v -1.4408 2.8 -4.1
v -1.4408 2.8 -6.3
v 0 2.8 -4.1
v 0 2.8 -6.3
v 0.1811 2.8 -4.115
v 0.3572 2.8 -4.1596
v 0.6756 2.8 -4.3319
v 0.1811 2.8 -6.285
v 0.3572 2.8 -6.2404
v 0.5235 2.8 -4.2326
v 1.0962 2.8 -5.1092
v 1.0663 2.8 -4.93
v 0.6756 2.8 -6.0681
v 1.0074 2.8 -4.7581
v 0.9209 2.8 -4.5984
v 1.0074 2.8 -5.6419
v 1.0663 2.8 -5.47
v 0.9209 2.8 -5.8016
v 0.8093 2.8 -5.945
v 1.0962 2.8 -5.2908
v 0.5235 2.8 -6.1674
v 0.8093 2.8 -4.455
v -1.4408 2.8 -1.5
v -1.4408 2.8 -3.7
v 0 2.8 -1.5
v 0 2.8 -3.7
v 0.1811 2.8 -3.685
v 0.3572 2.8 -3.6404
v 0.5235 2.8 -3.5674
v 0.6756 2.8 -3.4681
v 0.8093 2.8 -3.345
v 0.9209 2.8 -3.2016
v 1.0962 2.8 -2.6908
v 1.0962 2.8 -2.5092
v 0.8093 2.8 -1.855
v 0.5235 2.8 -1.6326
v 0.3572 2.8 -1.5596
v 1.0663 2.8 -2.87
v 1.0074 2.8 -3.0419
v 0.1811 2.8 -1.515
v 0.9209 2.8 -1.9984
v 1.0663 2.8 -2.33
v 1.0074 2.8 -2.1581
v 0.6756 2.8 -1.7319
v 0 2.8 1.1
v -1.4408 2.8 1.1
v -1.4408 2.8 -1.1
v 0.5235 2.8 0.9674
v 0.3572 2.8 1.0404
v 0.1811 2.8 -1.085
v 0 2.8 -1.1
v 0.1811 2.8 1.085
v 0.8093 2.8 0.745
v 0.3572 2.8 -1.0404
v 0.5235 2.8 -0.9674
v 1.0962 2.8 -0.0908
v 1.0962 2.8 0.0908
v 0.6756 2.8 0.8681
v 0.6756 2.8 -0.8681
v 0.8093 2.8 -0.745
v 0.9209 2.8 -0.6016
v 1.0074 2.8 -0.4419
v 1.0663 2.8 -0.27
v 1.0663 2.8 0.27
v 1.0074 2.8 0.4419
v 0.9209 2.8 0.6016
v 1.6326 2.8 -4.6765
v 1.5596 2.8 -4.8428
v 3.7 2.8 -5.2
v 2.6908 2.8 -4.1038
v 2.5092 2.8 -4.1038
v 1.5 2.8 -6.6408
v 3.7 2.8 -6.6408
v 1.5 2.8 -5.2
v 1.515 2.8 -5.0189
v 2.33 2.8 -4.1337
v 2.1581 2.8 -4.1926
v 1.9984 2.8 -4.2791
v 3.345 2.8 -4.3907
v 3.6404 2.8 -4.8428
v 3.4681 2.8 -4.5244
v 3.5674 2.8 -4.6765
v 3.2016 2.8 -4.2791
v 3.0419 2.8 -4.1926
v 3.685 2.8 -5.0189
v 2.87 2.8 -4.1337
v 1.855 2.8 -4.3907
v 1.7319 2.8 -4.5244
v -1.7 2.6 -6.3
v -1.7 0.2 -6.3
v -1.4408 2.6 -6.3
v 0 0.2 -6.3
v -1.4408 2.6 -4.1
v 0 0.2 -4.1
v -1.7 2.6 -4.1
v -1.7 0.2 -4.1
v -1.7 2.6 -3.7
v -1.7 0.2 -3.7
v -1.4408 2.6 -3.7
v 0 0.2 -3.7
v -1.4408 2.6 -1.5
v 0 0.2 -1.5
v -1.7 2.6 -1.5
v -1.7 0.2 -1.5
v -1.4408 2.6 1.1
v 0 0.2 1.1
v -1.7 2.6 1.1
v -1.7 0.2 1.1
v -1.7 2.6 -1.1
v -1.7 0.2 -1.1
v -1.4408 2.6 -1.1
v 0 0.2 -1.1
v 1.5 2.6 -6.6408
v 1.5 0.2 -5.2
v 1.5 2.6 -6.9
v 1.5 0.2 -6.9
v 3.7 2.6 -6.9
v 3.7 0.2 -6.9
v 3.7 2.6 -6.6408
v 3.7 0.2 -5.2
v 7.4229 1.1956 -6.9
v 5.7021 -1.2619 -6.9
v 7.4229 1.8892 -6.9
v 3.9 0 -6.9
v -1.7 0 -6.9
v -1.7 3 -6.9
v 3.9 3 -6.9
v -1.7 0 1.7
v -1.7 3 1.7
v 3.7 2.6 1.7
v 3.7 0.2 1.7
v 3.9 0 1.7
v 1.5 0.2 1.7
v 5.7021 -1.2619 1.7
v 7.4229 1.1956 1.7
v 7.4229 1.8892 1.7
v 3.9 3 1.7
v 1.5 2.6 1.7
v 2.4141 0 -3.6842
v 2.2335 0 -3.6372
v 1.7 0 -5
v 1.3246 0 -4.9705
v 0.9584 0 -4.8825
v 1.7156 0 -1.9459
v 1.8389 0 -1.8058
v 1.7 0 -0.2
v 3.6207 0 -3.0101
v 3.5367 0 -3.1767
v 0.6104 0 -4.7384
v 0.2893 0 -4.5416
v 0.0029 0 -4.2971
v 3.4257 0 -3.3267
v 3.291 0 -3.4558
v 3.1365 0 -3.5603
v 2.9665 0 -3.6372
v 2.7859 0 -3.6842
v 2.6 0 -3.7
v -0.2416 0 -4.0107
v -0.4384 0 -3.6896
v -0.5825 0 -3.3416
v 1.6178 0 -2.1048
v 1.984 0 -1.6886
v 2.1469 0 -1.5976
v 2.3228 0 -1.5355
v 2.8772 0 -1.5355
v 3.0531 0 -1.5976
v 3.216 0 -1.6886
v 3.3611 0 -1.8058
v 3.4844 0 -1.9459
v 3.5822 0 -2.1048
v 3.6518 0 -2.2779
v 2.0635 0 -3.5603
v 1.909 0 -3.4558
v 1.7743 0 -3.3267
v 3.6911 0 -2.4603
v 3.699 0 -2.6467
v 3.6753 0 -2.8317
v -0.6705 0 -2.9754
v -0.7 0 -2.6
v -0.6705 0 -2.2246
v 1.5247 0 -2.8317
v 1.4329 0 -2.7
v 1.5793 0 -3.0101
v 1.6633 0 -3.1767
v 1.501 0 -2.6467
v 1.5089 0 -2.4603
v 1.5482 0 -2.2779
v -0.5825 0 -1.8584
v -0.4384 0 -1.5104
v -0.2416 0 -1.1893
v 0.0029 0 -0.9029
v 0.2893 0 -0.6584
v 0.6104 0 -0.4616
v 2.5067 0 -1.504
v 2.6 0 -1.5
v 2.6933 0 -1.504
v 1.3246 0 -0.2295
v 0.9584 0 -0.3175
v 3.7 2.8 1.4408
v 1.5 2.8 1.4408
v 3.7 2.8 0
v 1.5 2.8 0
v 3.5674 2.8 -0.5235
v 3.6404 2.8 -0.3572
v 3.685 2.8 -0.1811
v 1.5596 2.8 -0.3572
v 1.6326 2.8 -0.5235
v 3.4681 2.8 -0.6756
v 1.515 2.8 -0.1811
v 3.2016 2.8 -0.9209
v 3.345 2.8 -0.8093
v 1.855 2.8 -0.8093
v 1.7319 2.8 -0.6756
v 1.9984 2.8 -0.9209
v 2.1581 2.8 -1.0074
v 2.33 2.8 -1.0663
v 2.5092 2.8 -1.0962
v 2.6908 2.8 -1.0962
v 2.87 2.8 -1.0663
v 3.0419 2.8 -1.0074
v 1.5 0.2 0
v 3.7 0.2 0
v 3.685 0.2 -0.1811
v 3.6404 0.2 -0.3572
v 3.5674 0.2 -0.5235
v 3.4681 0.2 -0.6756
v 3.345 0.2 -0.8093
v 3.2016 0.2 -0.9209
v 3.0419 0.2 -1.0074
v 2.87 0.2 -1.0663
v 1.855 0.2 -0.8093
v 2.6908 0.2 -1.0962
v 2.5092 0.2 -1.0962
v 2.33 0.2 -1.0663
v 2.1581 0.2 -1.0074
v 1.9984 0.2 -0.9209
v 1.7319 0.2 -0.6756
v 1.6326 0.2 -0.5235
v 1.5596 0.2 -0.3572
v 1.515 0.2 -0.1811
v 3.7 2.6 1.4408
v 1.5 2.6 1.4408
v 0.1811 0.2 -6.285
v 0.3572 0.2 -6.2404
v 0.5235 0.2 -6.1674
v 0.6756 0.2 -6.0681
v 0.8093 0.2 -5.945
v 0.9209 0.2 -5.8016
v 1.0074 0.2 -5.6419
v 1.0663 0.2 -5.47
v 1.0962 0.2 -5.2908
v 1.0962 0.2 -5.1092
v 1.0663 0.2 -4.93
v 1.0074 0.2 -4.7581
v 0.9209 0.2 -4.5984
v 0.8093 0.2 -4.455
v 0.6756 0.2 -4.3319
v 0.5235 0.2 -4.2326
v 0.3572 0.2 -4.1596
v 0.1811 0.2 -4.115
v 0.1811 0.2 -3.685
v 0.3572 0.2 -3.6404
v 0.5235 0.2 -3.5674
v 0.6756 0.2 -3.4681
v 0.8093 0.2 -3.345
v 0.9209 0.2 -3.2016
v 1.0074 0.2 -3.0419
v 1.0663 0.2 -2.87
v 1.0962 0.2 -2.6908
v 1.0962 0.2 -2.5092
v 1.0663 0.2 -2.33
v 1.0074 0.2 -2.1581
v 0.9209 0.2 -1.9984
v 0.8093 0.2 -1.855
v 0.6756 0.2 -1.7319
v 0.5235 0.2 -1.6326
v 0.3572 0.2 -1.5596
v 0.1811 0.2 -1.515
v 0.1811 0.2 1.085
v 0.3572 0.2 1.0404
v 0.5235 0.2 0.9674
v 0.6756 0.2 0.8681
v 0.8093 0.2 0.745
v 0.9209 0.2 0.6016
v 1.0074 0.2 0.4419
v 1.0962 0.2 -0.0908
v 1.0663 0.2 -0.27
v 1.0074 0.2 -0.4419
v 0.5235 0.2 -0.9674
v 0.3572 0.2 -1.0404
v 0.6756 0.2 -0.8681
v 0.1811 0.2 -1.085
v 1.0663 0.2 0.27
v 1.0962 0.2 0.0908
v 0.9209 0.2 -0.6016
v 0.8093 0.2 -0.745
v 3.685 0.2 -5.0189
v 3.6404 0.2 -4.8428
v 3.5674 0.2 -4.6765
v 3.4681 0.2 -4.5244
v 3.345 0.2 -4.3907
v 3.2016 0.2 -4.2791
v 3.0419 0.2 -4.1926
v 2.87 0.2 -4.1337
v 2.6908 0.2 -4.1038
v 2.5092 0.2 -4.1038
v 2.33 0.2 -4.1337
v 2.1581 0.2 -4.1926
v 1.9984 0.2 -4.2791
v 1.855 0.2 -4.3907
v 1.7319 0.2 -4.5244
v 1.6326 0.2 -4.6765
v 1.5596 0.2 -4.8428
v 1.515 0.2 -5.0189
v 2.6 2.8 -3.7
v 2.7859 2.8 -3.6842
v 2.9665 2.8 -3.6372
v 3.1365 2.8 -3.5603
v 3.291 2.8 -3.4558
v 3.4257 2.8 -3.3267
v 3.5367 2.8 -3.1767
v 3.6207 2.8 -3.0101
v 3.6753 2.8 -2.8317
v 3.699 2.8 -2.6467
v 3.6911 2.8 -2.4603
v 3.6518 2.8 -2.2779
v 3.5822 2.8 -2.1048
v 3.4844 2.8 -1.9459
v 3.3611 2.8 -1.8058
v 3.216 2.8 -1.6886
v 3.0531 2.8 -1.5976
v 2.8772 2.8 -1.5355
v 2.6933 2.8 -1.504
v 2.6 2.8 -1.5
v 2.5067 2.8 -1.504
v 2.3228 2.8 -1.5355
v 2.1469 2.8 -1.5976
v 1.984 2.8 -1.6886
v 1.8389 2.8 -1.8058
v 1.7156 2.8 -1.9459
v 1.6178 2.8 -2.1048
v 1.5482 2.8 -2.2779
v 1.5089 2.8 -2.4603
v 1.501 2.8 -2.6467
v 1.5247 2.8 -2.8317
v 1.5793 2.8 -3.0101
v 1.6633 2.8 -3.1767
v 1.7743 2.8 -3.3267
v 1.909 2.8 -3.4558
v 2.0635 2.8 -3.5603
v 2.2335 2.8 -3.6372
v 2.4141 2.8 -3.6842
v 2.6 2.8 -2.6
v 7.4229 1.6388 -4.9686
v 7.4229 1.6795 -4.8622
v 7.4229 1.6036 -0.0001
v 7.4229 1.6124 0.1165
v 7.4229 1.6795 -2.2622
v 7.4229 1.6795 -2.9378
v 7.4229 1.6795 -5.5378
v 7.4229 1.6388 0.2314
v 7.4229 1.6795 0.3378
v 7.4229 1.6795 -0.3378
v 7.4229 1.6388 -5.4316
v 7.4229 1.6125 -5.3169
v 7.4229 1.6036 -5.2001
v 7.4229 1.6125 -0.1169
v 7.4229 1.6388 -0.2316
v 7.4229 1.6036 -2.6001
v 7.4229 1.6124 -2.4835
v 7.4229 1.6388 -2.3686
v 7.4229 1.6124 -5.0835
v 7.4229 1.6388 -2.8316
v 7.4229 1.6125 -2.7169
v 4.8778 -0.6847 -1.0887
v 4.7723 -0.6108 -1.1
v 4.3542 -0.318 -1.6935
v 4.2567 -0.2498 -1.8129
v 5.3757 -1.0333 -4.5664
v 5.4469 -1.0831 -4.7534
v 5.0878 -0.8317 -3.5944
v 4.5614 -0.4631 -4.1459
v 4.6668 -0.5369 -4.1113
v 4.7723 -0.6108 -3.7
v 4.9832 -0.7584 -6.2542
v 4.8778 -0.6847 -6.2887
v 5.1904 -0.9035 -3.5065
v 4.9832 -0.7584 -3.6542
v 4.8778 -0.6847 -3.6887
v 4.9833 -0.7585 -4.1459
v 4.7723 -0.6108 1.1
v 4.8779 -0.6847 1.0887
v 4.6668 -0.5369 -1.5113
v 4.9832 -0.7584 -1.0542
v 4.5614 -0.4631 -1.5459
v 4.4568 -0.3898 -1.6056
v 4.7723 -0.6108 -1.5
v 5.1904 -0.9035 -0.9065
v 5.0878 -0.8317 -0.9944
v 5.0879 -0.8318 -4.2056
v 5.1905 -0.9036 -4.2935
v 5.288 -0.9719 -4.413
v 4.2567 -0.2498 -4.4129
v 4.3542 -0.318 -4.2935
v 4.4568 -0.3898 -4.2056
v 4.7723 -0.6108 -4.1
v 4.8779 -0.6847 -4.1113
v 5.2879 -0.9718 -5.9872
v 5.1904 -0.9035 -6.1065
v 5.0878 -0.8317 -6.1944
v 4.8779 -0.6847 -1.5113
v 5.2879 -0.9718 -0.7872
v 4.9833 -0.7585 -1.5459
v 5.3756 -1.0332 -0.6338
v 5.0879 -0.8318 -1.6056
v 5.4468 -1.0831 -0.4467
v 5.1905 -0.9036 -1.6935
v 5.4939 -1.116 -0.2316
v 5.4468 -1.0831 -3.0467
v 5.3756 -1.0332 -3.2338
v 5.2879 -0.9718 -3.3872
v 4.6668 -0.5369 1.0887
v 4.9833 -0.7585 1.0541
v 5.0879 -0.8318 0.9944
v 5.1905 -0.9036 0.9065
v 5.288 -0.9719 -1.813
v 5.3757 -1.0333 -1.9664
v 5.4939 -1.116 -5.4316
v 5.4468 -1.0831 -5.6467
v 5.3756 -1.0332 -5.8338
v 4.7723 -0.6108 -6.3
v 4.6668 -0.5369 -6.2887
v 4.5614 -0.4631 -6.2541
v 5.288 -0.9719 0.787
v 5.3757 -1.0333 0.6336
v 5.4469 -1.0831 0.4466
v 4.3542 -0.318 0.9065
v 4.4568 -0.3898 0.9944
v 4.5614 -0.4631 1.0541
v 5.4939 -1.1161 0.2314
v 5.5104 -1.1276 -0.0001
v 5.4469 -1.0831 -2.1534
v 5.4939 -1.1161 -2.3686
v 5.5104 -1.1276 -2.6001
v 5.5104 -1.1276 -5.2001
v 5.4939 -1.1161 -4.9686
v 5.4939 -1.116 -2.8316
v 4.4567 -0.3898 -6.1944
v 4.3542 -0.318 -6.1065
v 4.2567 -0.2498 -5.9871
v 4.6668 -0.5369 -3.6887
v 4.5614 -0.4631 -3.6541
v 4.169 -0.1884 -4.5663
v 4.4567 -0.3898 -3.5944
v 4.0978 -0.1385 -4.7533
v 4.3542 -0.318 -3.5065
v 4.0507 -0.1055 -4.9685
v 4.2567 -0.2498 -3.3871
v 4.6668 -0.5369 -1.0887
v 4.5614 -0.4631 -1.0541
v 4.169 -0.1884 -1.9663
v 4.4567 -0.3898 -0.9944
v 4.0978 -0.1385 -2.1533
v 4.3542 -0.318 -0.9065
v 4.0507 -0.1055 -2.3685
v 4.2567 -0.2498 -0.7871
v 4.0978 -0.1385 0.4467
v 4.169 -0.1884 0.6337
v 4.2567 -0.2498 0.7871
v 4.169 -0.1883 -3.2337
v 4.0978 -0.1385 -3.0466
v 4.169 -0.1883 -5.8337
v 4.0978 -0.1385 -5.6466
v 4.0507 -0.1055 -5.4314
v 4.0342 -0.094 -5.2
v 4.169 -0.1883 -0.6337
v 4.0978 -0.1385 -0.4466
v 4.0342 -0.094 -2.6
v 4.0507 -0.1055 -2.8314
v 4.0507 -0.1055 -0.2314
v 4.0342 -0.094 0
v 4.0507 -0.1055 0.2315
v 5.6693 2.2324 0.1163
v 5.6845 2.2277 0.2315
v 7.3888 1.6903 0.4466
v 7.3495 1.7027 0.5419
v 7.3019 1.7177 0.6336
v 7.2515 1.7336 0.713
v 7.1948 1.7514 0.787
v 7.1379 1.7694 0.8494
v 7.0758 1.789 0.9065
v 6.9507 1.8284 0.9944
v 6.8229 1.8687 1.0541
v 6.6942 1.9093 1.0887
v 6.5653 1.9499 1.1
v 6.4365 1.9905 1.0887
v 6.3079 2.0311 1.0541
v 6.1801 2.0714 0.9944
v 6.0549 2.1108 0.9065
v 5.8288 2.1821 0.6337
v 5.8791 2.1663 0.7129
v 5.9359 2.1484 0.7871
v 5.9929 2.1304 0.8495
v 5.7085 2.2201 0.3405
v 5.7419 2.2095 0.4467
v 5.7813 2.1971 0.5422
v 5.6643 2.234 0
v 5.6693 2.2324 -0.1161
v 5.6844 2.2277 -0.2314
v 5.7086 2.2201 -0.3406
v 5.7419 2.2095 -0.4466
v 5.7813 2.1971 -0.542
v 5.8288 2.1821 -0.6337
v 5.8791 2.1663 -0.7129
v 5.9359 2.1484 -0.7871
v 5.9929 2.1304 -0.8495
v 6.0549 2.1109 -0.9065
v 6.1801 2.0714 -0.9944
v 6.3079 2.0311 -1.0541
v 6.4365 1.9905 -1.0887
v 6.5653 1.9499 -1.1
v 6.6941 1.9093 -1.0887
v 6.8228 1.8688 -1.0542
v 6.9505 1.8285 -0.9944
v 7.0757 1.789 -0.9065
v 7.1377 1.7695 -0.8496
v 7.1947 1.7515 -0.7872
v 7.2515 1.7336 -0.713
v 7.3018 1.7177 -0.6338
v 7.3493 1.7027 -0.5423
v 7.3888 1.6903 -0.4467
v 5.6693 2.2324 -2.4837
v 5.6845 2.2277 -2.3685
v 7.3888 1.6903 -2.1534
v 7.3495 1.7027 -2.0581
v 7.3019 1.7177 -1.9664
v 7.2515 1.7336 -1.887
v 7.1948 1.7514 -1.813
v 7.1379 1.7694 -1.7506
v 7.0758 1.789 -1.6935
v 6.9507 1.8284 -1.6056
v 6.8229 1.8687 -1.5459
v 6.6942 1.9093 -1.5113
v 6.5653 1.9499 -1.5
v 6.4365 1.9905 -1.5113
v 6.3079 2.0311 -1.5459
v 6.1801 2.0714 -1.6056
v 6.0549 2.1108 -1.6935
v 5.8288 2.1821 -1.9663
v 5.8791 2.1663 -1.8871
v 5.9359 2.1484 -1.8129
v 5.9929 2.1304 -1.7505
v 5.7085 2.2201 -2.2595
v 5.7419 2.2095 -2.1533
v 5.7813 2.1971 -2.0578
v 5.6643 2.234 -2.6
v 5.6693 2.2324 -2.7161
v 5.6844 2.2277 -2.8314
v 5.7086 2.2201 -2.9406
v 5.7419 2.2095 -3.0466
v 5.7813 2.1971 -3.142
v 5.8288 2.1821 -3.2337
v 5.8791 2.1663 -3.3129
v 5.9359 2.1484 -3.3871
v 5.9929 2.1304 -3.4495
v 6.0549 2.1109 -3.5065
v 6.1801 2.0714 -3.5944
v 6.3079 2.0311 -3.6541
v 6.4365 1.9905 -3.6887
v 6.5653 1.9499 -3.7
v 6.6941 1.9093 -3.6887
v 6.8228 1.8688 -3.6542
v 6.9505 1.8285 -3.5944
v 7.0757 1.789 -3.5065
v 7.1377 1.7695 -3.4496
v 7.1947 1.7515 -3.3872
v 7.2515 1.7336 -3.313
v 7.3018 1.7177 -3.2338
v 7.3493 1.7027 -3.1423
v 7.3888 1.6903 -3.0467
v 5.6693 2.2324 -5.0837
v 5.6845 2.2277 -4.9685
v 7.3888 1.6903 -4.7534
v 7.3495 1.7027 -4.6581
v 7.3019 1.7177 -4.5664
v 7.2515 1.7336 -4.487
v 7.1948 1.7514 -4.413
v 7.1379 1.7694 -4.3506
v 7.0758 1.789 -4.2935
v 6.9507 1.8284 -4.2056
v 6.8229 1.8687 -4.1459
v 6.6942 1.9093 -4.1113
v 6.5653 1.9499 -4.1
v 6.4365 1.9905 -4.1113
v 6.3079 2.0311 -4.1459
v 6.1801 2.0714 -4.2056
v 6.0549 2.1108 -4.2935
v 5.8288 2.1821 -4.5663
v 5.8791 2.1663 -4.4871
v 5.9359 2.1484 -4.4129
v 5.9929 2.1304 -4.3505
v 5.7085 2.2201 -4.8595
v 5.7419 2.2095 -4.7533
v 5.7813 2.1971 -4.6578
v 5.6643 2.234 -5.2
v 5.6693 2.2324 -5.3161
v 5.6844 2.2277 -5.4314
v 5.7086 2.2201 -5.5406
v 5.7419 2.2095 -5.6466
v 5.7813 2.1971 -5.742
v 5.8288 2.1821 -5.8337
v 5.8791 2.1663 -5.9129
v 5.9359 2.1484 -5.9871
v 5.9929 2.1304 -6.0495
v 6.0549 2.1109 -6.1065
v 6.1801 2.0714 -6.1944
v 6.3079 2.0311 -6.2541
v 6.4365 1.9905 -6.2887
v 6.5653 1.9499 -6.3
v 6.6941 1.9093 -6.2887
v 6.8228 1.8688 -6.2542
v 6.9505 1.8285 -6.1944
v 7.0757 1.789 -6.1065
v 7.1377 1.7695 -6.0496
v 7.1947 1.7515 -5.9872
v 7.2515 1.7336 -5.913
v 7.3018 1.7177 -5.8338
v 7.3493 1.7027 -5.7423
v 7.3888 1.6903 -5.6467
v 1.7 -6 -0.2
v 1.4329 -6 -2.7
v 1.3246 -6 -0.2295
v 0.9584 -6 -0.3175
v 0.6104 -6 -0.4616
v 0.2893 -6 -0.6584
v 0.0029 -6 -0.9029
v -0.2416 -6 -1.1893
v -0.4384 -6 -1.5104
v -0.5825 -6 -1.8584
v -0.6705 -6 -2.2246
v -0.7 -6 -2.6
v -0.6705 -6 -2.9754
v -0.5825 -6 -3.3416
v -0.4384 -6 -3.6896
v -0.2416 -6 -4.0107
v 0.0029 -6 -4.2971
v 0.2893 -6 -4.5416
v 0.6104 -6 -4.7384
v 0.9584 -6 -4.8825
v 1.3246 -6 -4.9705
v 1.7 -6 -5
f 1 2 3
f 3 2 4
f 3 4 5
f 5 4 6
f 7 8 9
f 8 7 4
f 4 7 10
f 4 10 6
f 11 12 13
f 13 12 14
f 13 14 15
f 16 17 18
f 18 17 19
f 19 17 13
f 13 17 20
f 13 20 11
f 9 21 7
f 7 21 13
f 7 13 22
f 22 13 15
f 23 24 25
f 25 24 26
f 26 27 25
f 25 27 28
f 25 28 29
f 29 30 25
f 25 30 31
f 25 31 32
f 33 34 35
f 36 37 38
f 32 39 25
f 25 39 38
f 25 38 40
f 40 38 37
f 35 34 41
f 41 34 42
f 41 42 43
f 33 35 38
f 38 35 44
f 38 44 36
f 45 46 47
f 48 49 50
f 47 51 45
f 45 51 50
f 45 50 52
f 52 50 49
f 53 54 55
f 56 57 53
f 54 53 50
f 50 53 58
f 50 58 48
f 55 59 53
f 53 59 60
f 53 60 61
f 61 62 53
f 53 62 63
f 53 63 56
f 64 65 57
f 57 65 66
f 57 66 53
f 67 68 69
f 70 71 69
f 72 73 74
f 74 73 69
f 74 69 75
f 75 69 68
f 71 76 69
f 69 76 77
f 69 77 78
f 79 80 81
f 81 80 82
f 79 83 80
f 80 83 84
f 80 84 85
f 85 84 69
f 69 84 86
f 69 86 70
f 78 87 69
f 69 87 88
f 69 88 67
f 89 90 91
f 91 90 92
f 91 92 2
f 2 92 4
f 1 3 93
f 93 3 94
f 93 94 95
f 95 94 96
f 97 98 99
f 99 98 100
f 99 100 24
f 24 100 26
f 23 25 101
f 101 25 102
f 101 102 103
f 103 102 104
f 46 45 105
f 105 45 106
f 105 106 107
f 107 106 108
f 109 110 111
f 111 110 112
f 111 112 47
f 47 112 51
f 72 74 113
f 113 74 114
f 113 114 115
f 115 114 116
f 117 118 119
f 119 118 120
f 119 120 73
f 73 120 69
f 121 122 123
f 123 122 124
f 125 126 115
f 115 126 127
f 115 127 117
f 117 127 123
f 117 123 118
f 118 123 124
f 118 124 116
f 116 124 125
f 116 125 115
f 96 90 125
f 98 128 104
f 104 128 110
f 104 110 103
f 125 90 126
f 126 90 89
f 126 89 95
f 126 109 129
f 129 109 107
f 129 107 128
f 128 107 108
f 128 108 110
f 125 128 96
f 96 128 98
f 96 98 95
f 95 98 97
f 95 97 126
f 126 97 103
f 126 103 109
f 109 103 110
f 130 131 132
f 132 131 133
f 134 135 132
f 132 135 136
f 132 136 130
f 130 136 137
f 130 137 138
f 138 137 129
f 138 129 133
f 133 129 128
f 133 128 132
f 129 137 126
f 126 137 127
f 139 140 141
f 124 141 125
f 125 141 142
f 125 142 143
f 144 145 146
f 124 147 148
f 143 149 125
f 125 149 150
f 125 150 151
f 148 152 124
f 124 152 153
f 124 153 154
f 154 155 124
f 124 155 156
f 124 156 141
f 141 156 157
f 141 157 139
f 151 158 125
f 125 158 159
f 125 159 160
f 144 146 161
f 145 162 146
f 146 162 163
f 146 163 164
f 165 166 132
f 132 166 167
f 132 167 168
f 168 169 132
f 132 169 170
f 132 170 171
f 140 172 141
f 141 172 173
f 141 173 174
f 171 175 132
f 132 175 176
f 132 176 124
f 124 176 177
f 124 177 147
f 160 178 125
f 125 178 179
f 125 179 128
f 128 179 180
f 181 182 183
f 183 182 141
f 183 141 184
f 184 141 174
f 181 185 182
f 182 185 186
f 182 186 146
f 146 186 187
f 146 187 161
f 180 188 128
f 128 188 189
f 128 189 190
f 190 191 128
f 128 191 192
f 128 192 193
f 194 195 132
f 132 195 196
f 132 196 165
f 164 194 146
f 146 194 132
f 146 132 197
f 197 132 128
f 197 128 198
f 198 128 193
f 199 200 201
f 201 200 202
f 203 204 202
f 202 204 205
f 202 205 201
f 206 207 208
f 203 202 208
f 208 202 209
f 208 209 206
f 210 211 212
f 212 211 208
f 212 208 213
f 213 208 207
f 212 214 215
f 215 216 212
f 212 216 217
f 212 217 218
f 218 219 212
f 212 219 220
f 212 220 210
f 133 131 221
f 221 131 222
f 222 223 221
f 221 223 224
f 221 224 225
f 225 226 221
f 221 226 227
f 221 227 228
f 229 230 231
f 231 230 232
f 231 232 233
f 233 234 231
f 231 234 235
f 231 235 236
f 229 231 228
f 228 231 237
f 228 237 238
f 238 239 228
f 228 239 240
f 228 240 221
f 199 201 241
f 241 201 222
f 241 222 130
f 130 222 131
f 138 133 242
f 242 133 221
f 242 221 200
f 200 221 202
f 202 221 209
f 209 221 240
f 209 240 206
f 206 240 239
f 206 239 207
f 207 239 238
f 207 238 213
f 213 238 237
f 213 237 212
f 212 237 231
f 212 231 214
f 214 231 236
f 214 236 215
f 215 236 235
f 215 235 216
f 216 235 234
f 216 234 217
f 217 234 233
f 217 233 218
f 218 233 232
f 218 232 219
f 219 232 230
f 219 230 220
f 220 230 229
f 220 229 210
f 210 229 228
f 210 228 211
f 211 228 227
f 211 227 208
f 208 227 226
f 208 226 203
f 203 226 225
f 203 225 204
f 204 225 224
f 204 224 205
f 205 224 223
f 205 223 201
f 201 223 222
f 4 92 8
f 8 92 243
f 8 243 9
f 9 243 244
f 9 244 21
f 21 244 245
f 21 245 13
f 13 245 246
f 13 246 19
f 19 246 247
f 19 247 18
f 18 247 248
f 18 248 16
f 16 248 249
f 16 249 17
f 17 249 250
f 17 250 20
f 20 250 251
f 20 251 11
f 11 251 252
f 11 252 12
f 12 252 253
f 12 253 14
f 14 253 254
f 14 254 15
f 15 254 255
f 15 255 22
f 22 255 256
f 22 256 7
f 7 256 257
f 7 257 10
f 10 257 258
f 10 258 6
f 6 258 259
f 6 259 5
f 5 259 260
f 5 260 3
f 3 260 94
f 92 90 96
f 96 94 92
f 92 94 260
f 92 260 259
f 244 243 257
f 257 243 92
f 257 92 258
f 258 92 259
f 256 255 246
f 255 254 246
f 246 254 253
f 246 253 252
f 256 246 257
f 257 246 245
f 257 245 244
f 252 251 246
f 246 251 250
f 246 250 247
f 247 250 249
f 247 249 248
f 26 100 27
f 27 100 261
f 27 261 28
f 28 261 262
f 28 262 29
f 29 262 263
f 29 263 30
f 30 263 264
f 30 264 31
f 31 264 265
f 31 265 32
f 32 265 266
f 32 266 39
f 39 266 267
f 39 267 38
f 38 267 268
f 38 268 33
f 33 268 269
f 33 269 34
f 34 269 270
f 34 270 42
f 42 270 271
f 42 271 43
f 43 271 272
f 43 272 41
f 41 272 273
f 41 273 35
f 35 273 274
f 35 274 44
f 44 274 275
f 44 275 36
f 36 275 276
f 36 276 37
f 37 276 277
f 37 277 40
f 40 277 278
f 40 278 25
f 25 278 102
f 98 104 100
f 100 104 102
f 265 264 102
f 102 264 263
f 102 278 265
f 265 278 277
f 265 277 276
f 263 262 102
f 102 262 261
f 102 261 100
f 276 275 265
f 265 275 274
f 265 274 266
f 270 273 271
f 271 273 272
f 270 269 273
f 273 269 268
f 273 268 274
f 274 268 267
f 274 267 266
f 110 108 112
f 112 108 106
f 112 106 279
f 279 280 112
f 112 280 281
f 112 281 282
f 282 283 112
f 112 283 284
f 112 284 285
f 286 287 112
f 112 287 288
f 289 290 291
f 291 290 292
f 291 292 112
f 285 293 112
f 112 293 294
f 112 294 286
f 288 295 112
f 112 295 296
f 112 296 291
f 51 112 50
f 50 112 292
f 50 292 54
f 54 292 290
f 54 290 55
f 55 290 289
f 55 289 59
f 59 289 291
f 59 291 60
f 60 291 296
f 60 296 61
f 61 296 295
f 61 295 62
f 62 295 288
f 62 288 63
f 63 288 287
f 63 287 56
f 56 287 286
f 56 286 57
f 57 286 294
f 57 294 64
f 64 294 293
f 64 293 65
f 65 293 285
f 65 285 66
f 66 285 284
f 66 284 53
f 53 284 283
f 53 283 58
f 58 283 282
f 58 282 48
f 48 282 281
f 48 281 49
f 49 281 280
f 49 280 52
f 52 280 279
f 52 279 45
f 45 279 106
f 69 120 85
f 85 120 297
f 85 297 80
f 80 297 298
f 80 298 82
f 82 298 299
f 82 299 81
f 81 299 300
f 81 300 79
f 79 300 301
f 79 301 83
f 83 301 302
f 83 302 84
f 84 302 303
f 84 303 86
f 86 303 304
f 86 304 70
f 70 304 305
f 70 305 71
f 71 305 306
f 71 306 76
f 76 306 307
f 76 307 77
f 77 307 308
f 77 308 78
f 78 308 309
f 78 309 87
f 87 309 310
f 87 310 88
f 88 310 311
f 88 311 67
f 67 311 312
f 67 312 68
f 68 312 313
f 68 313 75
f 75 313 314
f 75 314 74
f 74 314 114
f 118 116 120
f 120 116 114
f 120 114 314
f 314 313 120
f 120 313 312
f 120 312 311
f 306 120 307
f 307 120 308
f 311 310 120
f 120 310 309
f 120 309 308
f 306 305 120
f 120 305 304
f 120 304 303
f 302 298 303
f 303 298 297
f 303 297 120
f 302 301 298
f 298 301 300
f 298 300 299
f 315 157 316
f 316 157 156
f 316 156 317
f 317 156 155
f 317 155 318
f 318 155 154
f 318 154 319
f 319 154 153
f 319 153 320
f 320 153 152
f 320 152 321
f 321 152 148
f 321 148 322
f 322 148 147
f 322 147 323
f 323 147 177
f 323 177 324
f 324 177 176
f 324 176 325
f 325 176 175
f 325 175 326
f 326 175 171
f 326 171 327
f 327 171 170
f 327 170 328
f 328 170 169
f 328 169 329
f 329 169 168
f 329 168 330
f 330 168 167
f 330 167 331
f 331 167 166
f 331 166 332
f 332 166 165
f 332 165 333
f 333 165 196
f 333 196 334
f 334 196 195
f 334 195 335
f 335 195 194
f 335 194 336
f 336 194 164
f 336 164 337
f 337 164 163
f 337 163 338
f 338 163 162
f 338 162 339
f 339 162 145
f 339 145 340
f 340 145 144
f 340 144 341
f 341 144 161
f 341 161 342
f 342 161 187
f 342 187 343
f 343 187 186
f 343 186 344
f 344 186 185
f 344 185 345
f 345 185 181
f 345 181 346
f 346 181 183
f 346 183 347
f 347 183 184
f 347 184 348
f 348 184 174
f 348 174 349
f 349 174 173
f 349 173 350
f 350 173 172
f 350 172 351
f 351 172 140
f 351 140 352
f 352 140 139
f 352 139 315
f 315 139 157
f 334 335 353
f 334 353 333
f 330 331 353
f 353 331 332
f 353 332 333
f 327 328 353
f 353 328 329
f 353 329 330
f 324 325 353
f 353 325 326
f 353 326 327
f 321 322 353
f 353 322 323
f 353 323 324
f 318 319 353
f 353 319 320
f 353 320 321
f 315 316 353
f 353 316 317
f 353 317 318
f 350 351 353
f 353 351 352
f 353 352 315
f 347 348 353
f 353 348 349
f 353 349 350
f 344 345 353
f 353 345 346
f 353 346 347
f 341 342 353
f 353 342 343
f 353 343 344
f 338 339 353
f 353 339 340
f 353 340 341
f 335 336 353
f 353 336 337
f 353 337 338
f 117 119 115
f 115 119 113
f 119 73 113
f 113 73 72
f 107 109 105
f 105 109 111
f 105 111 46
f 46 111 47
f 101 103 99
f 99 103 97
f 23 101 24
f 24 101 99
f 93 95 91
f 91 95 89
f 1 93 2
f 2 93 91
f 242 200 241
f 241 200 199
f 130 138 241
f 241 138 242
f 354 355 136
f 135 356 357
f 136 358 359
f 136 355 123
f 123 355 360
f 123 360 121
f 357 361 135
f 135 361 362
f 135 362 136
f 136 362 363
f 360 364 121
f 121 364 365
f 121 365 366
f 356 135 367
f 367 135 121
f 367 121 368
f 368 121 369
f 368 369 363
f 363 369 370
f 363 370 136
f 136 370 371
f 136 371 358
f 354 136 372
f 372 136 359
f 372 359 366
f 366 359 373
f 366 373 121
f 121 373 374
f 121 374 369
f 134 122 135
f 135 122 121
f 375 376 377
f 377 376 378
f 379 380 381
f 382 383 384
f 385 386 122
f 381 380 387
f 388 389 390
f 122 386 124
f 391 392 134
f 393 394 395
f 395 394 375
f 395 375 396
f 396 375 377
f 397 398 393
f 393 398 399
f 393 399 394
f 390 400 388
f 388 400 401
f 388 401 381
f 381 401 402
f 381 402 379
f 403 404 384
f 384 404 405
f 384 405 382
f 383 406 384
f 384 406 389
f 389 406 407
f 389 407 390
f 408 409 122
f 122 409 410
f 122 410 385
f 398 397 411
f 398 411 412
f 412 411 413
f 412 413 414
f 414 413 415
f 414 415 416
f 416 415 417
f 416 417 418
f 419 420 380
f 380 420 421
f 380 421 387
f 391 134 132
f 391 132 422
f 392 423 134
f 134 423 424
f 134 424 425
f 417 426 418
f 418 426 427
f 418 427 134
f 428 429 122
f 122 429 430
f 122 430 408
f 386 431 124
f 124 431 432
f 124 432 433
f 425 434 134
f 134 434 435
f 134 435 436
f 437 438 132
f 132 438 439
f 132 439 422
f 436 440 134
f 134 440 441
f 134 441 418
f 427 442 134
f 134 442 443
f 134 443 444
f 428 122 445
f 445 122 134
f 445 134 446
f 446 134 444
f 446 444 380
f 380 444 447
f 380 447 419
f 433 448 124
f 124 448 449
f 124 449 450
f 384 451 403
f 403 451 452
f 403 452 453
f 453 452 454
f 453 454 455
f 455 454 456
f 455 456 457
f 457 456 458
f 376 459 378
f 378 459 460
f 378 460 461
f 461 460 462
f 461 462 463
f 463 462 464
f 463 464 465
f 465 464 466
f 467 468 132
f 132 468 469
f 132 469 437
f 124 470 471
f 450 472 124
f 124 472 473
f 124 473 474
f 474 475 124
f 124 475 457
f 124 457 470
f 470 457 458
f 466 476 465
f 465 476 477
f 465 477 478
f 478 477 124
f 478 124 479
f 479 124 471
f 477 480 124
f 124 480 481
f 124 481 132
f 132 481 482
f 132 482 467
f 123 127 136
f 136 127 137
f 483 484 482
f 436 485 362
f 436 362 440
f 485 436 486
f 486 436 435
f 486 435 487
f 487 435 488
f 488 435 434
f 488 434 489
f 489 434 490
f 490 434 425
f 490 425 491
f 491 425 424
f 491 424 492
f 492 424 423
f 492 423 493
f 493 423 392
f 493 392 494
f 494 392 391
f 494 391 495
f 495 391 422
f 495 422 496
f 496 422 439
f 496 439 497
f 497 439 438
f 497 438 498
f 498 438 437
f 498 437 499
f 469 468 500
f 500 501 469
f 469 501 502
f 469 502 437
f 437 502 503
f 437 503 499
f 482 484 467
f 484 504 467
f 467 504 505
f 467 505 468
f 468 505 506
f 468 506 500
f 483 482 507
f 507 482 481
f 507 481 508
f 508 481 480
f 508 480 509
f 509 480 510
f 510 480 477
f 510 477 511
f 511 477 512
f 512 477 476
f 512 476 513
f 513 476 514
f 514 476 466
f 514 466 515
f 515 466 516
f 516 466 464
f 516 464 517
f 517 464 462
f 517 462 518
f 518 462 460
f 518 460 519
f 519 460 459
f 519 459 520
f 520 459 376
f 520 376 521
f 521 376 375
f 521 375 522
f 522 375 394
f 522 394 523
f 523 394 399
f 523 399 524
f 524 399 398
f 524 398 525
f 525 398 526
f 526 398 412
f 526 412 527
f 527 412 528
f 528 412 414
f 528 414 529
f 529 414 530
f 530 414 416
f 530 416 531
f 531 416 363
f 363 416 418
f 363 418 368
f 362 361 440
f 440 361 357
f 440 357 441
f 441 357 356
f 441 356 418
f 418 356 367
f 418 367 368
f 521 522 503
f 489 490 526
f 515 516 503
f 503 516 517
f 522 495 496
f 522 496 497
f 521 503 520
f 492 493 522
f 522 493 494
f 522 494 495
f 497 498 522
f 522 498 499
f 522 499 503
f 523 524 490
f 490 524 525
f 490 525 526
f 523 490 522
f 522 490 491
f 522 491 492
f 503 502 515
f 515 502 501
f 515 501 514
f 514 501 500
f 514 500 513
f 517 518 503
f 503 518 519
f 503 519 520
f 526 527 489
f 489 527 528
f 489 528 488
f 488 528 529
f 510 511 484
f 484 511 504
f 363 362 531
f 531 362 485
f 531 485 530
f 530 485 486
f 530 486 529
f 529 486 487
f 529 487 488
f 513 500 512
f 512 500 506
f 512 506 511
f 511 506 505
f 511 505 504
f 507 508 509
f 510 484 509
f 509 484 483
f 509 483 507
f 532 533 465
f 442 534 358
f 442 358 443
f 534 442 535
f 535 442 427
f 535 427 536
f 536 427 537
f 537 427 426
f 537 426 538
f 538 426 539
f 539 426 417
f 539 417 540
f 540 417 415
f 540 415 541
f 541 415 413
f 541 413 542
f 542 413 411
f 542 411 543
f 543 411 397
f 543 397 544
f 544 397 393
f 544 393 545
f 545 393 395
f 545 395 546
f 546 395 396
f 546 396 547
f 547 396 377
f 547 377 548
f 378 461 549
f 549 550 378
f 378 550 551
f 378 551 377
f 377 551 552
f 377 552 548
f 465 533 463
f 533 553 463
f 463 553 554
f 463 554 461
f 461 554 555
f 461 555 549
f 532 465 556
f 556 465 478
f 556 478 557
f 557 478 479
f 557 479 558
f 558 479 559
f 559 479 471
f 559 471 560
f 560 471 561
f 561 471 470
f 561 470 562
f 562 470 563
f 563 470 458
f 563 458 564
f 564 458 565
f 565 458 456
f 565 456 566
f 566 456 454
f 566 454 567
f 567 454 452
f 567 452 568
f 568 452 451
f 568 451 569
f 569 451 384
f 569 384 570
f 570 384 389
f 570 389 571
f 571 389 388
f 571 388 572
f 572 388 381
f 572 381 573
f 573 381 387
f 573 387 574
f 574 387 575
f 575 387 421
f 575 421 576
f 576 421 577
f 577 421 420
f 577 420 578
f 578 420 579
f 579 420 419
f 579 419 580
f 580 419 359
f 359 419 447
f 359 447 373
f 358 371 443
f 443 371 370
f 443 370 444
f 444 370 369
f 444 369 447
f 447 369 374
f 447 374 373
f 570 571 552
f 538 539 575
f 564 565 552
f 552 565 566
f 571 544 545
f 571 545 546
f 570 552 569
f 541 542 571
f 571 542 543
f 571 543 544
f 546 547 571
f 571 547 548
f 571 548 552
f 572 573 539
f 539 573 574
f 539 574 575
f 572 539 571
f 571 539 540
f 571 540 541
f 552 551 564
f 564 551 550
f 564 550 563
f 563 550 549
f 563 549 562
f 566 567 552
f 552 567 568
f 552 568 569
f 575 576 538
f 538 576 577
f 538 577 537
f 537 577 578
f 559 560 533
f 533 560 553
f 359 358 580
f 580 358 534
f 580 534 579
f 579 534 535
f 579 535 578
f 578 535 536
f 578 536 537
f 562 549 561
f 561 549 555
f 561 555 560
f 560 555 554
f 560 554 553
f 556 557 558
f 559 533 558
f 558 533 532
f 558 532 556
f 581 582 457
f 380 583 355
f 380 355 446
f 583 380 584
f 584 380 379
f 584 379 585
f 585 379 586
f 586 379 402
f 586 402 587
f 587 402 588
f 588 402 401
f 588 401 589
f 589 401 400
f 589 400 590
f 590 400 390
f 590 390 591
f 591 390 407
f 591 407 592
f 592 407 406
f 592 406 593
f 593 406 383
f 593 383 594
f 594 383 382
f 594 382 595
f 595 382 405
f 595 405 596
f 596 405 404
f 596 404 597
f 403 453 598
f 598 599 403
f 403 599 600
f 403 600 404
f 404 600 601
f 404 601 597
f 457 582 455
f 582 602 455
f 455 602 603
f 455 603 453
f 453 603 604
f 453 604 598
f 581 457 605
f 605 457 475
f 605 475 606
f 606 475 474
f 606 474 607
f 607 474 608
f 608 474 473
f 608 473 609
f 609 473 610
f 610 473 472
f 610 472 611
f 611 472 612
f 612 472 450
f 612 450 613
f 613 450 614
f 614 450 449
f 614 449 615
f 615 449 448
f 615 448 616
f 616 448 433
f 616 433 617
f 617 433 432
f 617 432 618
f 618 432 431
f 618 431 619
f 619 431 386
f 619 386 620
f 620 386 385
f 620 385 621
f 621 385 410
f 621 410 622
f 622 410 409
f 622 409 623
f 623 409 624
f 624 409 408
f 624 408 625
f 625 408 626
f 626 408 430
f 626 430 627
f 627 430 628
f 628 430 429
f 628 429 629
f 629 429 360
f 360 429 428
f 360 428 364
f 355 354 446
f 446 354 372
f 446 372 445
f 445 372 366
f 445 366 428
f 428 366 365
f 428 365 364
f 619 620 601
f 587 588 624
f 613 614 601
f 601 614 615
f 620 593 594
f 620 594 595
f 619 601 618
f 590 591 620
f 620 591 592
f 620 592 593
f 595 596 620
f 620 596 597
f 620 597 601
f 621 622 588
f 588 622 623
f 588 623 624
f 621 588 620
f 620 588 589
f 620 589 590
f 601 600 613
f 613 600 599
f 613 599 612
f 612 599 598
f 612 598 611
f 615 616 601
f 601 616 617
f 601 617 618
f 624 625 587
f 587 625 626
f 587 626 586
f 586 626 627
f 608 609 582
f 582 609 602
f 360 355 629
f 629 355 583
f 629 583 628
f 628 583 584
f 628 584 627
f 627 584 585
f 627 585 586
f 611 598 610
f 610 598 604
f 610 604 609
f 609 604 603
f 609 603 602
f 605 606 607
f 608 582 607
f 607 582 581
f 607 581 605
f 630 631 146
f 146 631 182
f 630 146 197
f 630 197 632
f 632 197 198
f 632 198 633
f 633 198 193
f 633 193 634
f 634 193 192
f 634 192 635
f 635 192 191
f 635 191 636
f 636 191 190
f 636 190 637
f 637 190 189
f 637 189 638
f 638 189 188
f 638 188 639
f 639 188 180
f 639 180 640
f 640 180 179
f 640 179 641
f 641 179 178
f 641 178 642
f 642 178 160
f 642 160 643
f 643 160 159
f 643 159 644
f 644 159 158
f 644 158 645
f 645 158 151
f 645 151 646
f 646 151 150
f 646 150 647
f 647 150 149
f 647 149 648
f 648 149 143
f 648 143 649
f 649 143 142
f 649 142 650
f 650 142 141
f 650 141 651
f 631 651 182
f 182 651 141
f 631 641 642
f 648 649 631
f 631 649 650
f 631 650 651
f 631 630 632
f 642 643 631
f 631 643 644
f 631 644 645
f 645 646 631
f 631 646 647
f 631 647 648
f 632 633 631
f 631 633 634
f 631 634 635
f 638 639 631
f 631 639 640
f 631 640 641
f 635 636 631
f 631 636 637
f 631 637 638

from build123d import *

# Parameters (mm, degrees)
HOUSING_DEPTH                  = 3
KINK_HOUSING_DEPTH             = 8.6
KINK_SLOTS_REACH               = 11.941
KINK_SLOTS_OFFSET_FROM_SURFACE = 0.2
SKETCH18_RX                    = 1.1
SKETCH18_RY                    = 0.901067249
SIDE_START                     = 0.2
SKETCH1_14_R                   = 1.1
SIDE_CUTS_DEPTH                = 2.6
SKETCH1_15_R                   = 1.1
CENTER_CUT_DEPTH               = 2.8
BOSS_EXTRUDE4_START            = -0.2
BOSS_EXTRUDE4_DEPTH            = 0.2
BOSS_EXTRUDE5_DEPTH            = 6


with BuildPart() as part:
    # Sketch1 → Housing (new body)
    with BuildSketch(Plane(origin=(0, 0, 0), x_dir=(1, 0, 0), z_dir=(0, 1, 0))):
        Polygon((3.9, 6.9), (-1.7, 6.9), (-1.7, -1.7), (3.9, -1.7), (3.9, 5.2), align=None)
    extrude(amount=HOUSING_DEPTH)

    # Sketch1<14> → Side Cuts (cut)
    with BuildSketch(Plane(origin=(0, 0, 0), x_dir=(1, 0, 0), z_dir=(0, 1, 0)).offset(SIDE_START)):
        with BuildLine():
            Line((3.7, 5.2), (3.7, 6.9))
            Line((3.7, 6.9), (1.5, 6.9))
            Line((1.5, 6.9), (1.5, 5.2))
            ThreePointArc((1.5, 5.2), (2.6, 6.3), (3.7, 5.2))
        make_face()
        with Locations((2.6, 5.2)):
            Circle(SKETCH1_14_R)
        with Locations((0, 5.2)):
            Circle(SKETCH1_14_R)
        with BuildLine():
            Line((0, 6.3), (-1.7, 6.3))
            Line((-1.7, 6.3), (-1.7, 4.1))
            Line((-1.7, 4.1), (0, 4.1))
            ThreePointArc((0, 4.1), (-1.1, 5.2), (0, 6.3))
        make_face()
        with Locations((0, 2.6)):
            Circle(SKETCH1_14_R)
        with BuildLine():
            Line((0, 3.7), (-1.7, 3.7))
            Line((-1.7, 3.7), (-1.7, 1.5))
            Line((-1.7, 1.5), (0, 1.5))
            ThreePointArc((0, 1.5), (-1.1, 2.6), (0, 3.7))
        make_face()
        with Locations((2.6, 0)):
            Circle(SKETCH1_14_R)
        with BuildLine():
            Line((1.5, -1.7), (3.7, -1.7))
            Line((3.7, -1.7), (3.7, 0))
            ThreePointArc((3.7, 0), (2.6, -1.1), (1.5, 0))
            Line((1.5, 0), (1.5, -1.7))
        make_face()
        Circle(SKETCH1_14_R)
        with BuildLine():
            Line((-1.7, 1.1), (-1.7, -1.1))
            Line((-1.7, -1.1), (0, -1.1))
            ThreePointArc((0, -1.1), (-1.1, 0), (0, 1.1))
            Line((0, 1.1), (-1.7, 1.1))
        make_face()
    extrude(amount=SIDE_CUTS_DEPTH, mode=Mode.SUBTRACT)

    # Sketch1<15> → Center Cut (cut)
    with BuildSketch(Plane(origin=(0, 0, 0), x_dir=(1, 0, 0), z_dir=(0, 1, 0))):
        with Locations(Location((2.6, 2.6, 0), (0, 0, 270))):
            Circle(SKETCH1_15_R)
    extrude(amount=CENTER_CUT_DEPTH, mode=Mode.SUBTRACT)



with BuildPart() as body_2:
    # Tilted Magnet → Kink Housing (new body)
    with BuildSketch(Plane(origin=(0, 0, -6.9), x_dir=(-1, 0, 0), z_dir=(0, 0, -1))):
        Polygon((-3.9, 3), (-7.422863806, 1.889245308), (-7.422863806, 1.195587973), (-5.702134497, -1.26186816), (-3.9, 0), align=None)
    extrude(amount=-KINK_HOUSING_DEPTH)

    # Kink Slots: up to this face of the body (flat: up to its plane, moved by the offset)
    kink_slots_end = Plane(body_2.part.faces().sort_by_distance((5.661431903, 2.444622654, -2.6))[0]).offset(-KINK_SLOTS_OFFSET_FROM_SURFACE)
    # Sketch18 → Kink Slots (cut, up to the picked face)
    with BuildSketch(Plane(origin=(1.283060721, 1.832400611, 0), x_dir=(0.8191520442889985, -0.5735764363510366, 0), z_dir=(-0.5735764363510366, -0.8191520442889985, 0)), mode=Mode.PRIVATE) as kink_slots_sk1:
        with Locations(Location((4.25959063, -5.2), (0, 0, 90))):
            Ellipse(SKETCH18_RX, SKETCH18_RY)
    kink_slots_tool1 = split(extrude(kink_slots_sk1.sketch, amount=-KINK_SLOTS_REACH, mode=Mode.PRIVATE), bisect_by=kink_slots_end, keep=Keep.BOTH, mode=Mode.PRIVATE)
    # Sketch18 → Kink Slots (cut, up to the picked face)
    with BuildSketch(Plane(origin=(1.283060721, 1.832400611, 0), x_dir=(0.8191520442889985, -0.5735764363510366, 0), z_dir=(-0.5735764363510366, -0.8191520442889985, 0)), mode=Mode.PRIVATE) as kink_slots_sk2:
        with Locations(Location((4.25959063, -2.6), (0, 0, -90))):
            Ellipse(SKETCH18_RX, SKETCH18_RY)
    kink_slots_tool2 = split(extrude(kink_slots_sk2.sketch, amount=-KINK_SLOTS_REACH, mode=Mode.PRIVATE), bisect_by=kink_slots_end, keep=Keep.BOTH, mode=Mode.PRIVATE)
    # Sketch18 → Kink Slots (cut, up to the picked face)
    with BuildSketch(Plane(origin=(1.283060721, 1.832400611, 0), x_dir=(0.8191520442889985, -0.5735764363510366, 0), z_dir=(-0.5735764363510366, -0.8191520442889985, 0)), mode=Mode.PRIVATE) as kink_slots_sk3:
        with Locations(Location((4.25959063, 0), (0, 0, 90))):
            Ellipse(SKETCH18_RX, SKETCH18_RY)
    kink_slots_tool3 = split(extrude(kink_slots_sk3.sketch, amount=-KINK_SLOTS_REACH, mode=Mode.PRIVATE), bisect_by=kink_slots_end, keep=Keep.BOTH, mode=Mode.PRIVATE)
    add(kink_slots_tool1.solids().sort_by(Axis((4.772313, -0.6108, -5.2), (0.5735764363510366, 0.8191520442889985, 0)))[0], mode=Mode.SUBTRACT)
    add(kink_slots_tool2.solids().sort_by(Axis((4.772313, -0.6108, -2.6), (0.5735764363510366, 0.8191520442889985, 0)))[0], mode=Mode.SUBTRACT)
    add(kink_slots_tool3.solids().sort_by(Axis((4.772313, -0.6108, 0), (0.5735764363510366, 0.8191520442889985, 0)))[0], mode=Mode.SUBTRACT)


with BuildPart() as part_1:
    add(part.part)

    add(body_2.part)  # Boss-Extrude4 merges body 2
    # Sketch19 → Boss-Extrude4 (add)
    with BuildSketch(Plane(origin=(0, 3, 0), x_dir=(1, 0, 0), z_dir=(0, 1, 0)).offset(BOSS_EXTRUDE4_START)):
        Polygon((3.9, 6.9), (-1.7, 6.9), (-1.7, -1.7), (3.9, -1.7), (3.9, -1.440815164), (-1.440815164, -1.440815164), (-1.440815164, 6.640815164), (3.9, 6.640815164), align=None)
    extrude(amount=-BOSS_EXTRUDE4_DEPTH)

    # Sketch20 → Boss-Extrude5 (add)
    with BuildSketch(Plane.XZ):
        with BuildLine():
            Line((1.432886326, -2.7), (1.7, -0.2))
            ThreePointArc((1.7, -0.2), (-0.7, -2.6), (1.7, -5))
            Line((1.7, -5), (1.432886326, -2.7))
        make_face()
    extrude(amount=BOSS_EXTRUDE5_DEPTH)


solid = part_1.part
